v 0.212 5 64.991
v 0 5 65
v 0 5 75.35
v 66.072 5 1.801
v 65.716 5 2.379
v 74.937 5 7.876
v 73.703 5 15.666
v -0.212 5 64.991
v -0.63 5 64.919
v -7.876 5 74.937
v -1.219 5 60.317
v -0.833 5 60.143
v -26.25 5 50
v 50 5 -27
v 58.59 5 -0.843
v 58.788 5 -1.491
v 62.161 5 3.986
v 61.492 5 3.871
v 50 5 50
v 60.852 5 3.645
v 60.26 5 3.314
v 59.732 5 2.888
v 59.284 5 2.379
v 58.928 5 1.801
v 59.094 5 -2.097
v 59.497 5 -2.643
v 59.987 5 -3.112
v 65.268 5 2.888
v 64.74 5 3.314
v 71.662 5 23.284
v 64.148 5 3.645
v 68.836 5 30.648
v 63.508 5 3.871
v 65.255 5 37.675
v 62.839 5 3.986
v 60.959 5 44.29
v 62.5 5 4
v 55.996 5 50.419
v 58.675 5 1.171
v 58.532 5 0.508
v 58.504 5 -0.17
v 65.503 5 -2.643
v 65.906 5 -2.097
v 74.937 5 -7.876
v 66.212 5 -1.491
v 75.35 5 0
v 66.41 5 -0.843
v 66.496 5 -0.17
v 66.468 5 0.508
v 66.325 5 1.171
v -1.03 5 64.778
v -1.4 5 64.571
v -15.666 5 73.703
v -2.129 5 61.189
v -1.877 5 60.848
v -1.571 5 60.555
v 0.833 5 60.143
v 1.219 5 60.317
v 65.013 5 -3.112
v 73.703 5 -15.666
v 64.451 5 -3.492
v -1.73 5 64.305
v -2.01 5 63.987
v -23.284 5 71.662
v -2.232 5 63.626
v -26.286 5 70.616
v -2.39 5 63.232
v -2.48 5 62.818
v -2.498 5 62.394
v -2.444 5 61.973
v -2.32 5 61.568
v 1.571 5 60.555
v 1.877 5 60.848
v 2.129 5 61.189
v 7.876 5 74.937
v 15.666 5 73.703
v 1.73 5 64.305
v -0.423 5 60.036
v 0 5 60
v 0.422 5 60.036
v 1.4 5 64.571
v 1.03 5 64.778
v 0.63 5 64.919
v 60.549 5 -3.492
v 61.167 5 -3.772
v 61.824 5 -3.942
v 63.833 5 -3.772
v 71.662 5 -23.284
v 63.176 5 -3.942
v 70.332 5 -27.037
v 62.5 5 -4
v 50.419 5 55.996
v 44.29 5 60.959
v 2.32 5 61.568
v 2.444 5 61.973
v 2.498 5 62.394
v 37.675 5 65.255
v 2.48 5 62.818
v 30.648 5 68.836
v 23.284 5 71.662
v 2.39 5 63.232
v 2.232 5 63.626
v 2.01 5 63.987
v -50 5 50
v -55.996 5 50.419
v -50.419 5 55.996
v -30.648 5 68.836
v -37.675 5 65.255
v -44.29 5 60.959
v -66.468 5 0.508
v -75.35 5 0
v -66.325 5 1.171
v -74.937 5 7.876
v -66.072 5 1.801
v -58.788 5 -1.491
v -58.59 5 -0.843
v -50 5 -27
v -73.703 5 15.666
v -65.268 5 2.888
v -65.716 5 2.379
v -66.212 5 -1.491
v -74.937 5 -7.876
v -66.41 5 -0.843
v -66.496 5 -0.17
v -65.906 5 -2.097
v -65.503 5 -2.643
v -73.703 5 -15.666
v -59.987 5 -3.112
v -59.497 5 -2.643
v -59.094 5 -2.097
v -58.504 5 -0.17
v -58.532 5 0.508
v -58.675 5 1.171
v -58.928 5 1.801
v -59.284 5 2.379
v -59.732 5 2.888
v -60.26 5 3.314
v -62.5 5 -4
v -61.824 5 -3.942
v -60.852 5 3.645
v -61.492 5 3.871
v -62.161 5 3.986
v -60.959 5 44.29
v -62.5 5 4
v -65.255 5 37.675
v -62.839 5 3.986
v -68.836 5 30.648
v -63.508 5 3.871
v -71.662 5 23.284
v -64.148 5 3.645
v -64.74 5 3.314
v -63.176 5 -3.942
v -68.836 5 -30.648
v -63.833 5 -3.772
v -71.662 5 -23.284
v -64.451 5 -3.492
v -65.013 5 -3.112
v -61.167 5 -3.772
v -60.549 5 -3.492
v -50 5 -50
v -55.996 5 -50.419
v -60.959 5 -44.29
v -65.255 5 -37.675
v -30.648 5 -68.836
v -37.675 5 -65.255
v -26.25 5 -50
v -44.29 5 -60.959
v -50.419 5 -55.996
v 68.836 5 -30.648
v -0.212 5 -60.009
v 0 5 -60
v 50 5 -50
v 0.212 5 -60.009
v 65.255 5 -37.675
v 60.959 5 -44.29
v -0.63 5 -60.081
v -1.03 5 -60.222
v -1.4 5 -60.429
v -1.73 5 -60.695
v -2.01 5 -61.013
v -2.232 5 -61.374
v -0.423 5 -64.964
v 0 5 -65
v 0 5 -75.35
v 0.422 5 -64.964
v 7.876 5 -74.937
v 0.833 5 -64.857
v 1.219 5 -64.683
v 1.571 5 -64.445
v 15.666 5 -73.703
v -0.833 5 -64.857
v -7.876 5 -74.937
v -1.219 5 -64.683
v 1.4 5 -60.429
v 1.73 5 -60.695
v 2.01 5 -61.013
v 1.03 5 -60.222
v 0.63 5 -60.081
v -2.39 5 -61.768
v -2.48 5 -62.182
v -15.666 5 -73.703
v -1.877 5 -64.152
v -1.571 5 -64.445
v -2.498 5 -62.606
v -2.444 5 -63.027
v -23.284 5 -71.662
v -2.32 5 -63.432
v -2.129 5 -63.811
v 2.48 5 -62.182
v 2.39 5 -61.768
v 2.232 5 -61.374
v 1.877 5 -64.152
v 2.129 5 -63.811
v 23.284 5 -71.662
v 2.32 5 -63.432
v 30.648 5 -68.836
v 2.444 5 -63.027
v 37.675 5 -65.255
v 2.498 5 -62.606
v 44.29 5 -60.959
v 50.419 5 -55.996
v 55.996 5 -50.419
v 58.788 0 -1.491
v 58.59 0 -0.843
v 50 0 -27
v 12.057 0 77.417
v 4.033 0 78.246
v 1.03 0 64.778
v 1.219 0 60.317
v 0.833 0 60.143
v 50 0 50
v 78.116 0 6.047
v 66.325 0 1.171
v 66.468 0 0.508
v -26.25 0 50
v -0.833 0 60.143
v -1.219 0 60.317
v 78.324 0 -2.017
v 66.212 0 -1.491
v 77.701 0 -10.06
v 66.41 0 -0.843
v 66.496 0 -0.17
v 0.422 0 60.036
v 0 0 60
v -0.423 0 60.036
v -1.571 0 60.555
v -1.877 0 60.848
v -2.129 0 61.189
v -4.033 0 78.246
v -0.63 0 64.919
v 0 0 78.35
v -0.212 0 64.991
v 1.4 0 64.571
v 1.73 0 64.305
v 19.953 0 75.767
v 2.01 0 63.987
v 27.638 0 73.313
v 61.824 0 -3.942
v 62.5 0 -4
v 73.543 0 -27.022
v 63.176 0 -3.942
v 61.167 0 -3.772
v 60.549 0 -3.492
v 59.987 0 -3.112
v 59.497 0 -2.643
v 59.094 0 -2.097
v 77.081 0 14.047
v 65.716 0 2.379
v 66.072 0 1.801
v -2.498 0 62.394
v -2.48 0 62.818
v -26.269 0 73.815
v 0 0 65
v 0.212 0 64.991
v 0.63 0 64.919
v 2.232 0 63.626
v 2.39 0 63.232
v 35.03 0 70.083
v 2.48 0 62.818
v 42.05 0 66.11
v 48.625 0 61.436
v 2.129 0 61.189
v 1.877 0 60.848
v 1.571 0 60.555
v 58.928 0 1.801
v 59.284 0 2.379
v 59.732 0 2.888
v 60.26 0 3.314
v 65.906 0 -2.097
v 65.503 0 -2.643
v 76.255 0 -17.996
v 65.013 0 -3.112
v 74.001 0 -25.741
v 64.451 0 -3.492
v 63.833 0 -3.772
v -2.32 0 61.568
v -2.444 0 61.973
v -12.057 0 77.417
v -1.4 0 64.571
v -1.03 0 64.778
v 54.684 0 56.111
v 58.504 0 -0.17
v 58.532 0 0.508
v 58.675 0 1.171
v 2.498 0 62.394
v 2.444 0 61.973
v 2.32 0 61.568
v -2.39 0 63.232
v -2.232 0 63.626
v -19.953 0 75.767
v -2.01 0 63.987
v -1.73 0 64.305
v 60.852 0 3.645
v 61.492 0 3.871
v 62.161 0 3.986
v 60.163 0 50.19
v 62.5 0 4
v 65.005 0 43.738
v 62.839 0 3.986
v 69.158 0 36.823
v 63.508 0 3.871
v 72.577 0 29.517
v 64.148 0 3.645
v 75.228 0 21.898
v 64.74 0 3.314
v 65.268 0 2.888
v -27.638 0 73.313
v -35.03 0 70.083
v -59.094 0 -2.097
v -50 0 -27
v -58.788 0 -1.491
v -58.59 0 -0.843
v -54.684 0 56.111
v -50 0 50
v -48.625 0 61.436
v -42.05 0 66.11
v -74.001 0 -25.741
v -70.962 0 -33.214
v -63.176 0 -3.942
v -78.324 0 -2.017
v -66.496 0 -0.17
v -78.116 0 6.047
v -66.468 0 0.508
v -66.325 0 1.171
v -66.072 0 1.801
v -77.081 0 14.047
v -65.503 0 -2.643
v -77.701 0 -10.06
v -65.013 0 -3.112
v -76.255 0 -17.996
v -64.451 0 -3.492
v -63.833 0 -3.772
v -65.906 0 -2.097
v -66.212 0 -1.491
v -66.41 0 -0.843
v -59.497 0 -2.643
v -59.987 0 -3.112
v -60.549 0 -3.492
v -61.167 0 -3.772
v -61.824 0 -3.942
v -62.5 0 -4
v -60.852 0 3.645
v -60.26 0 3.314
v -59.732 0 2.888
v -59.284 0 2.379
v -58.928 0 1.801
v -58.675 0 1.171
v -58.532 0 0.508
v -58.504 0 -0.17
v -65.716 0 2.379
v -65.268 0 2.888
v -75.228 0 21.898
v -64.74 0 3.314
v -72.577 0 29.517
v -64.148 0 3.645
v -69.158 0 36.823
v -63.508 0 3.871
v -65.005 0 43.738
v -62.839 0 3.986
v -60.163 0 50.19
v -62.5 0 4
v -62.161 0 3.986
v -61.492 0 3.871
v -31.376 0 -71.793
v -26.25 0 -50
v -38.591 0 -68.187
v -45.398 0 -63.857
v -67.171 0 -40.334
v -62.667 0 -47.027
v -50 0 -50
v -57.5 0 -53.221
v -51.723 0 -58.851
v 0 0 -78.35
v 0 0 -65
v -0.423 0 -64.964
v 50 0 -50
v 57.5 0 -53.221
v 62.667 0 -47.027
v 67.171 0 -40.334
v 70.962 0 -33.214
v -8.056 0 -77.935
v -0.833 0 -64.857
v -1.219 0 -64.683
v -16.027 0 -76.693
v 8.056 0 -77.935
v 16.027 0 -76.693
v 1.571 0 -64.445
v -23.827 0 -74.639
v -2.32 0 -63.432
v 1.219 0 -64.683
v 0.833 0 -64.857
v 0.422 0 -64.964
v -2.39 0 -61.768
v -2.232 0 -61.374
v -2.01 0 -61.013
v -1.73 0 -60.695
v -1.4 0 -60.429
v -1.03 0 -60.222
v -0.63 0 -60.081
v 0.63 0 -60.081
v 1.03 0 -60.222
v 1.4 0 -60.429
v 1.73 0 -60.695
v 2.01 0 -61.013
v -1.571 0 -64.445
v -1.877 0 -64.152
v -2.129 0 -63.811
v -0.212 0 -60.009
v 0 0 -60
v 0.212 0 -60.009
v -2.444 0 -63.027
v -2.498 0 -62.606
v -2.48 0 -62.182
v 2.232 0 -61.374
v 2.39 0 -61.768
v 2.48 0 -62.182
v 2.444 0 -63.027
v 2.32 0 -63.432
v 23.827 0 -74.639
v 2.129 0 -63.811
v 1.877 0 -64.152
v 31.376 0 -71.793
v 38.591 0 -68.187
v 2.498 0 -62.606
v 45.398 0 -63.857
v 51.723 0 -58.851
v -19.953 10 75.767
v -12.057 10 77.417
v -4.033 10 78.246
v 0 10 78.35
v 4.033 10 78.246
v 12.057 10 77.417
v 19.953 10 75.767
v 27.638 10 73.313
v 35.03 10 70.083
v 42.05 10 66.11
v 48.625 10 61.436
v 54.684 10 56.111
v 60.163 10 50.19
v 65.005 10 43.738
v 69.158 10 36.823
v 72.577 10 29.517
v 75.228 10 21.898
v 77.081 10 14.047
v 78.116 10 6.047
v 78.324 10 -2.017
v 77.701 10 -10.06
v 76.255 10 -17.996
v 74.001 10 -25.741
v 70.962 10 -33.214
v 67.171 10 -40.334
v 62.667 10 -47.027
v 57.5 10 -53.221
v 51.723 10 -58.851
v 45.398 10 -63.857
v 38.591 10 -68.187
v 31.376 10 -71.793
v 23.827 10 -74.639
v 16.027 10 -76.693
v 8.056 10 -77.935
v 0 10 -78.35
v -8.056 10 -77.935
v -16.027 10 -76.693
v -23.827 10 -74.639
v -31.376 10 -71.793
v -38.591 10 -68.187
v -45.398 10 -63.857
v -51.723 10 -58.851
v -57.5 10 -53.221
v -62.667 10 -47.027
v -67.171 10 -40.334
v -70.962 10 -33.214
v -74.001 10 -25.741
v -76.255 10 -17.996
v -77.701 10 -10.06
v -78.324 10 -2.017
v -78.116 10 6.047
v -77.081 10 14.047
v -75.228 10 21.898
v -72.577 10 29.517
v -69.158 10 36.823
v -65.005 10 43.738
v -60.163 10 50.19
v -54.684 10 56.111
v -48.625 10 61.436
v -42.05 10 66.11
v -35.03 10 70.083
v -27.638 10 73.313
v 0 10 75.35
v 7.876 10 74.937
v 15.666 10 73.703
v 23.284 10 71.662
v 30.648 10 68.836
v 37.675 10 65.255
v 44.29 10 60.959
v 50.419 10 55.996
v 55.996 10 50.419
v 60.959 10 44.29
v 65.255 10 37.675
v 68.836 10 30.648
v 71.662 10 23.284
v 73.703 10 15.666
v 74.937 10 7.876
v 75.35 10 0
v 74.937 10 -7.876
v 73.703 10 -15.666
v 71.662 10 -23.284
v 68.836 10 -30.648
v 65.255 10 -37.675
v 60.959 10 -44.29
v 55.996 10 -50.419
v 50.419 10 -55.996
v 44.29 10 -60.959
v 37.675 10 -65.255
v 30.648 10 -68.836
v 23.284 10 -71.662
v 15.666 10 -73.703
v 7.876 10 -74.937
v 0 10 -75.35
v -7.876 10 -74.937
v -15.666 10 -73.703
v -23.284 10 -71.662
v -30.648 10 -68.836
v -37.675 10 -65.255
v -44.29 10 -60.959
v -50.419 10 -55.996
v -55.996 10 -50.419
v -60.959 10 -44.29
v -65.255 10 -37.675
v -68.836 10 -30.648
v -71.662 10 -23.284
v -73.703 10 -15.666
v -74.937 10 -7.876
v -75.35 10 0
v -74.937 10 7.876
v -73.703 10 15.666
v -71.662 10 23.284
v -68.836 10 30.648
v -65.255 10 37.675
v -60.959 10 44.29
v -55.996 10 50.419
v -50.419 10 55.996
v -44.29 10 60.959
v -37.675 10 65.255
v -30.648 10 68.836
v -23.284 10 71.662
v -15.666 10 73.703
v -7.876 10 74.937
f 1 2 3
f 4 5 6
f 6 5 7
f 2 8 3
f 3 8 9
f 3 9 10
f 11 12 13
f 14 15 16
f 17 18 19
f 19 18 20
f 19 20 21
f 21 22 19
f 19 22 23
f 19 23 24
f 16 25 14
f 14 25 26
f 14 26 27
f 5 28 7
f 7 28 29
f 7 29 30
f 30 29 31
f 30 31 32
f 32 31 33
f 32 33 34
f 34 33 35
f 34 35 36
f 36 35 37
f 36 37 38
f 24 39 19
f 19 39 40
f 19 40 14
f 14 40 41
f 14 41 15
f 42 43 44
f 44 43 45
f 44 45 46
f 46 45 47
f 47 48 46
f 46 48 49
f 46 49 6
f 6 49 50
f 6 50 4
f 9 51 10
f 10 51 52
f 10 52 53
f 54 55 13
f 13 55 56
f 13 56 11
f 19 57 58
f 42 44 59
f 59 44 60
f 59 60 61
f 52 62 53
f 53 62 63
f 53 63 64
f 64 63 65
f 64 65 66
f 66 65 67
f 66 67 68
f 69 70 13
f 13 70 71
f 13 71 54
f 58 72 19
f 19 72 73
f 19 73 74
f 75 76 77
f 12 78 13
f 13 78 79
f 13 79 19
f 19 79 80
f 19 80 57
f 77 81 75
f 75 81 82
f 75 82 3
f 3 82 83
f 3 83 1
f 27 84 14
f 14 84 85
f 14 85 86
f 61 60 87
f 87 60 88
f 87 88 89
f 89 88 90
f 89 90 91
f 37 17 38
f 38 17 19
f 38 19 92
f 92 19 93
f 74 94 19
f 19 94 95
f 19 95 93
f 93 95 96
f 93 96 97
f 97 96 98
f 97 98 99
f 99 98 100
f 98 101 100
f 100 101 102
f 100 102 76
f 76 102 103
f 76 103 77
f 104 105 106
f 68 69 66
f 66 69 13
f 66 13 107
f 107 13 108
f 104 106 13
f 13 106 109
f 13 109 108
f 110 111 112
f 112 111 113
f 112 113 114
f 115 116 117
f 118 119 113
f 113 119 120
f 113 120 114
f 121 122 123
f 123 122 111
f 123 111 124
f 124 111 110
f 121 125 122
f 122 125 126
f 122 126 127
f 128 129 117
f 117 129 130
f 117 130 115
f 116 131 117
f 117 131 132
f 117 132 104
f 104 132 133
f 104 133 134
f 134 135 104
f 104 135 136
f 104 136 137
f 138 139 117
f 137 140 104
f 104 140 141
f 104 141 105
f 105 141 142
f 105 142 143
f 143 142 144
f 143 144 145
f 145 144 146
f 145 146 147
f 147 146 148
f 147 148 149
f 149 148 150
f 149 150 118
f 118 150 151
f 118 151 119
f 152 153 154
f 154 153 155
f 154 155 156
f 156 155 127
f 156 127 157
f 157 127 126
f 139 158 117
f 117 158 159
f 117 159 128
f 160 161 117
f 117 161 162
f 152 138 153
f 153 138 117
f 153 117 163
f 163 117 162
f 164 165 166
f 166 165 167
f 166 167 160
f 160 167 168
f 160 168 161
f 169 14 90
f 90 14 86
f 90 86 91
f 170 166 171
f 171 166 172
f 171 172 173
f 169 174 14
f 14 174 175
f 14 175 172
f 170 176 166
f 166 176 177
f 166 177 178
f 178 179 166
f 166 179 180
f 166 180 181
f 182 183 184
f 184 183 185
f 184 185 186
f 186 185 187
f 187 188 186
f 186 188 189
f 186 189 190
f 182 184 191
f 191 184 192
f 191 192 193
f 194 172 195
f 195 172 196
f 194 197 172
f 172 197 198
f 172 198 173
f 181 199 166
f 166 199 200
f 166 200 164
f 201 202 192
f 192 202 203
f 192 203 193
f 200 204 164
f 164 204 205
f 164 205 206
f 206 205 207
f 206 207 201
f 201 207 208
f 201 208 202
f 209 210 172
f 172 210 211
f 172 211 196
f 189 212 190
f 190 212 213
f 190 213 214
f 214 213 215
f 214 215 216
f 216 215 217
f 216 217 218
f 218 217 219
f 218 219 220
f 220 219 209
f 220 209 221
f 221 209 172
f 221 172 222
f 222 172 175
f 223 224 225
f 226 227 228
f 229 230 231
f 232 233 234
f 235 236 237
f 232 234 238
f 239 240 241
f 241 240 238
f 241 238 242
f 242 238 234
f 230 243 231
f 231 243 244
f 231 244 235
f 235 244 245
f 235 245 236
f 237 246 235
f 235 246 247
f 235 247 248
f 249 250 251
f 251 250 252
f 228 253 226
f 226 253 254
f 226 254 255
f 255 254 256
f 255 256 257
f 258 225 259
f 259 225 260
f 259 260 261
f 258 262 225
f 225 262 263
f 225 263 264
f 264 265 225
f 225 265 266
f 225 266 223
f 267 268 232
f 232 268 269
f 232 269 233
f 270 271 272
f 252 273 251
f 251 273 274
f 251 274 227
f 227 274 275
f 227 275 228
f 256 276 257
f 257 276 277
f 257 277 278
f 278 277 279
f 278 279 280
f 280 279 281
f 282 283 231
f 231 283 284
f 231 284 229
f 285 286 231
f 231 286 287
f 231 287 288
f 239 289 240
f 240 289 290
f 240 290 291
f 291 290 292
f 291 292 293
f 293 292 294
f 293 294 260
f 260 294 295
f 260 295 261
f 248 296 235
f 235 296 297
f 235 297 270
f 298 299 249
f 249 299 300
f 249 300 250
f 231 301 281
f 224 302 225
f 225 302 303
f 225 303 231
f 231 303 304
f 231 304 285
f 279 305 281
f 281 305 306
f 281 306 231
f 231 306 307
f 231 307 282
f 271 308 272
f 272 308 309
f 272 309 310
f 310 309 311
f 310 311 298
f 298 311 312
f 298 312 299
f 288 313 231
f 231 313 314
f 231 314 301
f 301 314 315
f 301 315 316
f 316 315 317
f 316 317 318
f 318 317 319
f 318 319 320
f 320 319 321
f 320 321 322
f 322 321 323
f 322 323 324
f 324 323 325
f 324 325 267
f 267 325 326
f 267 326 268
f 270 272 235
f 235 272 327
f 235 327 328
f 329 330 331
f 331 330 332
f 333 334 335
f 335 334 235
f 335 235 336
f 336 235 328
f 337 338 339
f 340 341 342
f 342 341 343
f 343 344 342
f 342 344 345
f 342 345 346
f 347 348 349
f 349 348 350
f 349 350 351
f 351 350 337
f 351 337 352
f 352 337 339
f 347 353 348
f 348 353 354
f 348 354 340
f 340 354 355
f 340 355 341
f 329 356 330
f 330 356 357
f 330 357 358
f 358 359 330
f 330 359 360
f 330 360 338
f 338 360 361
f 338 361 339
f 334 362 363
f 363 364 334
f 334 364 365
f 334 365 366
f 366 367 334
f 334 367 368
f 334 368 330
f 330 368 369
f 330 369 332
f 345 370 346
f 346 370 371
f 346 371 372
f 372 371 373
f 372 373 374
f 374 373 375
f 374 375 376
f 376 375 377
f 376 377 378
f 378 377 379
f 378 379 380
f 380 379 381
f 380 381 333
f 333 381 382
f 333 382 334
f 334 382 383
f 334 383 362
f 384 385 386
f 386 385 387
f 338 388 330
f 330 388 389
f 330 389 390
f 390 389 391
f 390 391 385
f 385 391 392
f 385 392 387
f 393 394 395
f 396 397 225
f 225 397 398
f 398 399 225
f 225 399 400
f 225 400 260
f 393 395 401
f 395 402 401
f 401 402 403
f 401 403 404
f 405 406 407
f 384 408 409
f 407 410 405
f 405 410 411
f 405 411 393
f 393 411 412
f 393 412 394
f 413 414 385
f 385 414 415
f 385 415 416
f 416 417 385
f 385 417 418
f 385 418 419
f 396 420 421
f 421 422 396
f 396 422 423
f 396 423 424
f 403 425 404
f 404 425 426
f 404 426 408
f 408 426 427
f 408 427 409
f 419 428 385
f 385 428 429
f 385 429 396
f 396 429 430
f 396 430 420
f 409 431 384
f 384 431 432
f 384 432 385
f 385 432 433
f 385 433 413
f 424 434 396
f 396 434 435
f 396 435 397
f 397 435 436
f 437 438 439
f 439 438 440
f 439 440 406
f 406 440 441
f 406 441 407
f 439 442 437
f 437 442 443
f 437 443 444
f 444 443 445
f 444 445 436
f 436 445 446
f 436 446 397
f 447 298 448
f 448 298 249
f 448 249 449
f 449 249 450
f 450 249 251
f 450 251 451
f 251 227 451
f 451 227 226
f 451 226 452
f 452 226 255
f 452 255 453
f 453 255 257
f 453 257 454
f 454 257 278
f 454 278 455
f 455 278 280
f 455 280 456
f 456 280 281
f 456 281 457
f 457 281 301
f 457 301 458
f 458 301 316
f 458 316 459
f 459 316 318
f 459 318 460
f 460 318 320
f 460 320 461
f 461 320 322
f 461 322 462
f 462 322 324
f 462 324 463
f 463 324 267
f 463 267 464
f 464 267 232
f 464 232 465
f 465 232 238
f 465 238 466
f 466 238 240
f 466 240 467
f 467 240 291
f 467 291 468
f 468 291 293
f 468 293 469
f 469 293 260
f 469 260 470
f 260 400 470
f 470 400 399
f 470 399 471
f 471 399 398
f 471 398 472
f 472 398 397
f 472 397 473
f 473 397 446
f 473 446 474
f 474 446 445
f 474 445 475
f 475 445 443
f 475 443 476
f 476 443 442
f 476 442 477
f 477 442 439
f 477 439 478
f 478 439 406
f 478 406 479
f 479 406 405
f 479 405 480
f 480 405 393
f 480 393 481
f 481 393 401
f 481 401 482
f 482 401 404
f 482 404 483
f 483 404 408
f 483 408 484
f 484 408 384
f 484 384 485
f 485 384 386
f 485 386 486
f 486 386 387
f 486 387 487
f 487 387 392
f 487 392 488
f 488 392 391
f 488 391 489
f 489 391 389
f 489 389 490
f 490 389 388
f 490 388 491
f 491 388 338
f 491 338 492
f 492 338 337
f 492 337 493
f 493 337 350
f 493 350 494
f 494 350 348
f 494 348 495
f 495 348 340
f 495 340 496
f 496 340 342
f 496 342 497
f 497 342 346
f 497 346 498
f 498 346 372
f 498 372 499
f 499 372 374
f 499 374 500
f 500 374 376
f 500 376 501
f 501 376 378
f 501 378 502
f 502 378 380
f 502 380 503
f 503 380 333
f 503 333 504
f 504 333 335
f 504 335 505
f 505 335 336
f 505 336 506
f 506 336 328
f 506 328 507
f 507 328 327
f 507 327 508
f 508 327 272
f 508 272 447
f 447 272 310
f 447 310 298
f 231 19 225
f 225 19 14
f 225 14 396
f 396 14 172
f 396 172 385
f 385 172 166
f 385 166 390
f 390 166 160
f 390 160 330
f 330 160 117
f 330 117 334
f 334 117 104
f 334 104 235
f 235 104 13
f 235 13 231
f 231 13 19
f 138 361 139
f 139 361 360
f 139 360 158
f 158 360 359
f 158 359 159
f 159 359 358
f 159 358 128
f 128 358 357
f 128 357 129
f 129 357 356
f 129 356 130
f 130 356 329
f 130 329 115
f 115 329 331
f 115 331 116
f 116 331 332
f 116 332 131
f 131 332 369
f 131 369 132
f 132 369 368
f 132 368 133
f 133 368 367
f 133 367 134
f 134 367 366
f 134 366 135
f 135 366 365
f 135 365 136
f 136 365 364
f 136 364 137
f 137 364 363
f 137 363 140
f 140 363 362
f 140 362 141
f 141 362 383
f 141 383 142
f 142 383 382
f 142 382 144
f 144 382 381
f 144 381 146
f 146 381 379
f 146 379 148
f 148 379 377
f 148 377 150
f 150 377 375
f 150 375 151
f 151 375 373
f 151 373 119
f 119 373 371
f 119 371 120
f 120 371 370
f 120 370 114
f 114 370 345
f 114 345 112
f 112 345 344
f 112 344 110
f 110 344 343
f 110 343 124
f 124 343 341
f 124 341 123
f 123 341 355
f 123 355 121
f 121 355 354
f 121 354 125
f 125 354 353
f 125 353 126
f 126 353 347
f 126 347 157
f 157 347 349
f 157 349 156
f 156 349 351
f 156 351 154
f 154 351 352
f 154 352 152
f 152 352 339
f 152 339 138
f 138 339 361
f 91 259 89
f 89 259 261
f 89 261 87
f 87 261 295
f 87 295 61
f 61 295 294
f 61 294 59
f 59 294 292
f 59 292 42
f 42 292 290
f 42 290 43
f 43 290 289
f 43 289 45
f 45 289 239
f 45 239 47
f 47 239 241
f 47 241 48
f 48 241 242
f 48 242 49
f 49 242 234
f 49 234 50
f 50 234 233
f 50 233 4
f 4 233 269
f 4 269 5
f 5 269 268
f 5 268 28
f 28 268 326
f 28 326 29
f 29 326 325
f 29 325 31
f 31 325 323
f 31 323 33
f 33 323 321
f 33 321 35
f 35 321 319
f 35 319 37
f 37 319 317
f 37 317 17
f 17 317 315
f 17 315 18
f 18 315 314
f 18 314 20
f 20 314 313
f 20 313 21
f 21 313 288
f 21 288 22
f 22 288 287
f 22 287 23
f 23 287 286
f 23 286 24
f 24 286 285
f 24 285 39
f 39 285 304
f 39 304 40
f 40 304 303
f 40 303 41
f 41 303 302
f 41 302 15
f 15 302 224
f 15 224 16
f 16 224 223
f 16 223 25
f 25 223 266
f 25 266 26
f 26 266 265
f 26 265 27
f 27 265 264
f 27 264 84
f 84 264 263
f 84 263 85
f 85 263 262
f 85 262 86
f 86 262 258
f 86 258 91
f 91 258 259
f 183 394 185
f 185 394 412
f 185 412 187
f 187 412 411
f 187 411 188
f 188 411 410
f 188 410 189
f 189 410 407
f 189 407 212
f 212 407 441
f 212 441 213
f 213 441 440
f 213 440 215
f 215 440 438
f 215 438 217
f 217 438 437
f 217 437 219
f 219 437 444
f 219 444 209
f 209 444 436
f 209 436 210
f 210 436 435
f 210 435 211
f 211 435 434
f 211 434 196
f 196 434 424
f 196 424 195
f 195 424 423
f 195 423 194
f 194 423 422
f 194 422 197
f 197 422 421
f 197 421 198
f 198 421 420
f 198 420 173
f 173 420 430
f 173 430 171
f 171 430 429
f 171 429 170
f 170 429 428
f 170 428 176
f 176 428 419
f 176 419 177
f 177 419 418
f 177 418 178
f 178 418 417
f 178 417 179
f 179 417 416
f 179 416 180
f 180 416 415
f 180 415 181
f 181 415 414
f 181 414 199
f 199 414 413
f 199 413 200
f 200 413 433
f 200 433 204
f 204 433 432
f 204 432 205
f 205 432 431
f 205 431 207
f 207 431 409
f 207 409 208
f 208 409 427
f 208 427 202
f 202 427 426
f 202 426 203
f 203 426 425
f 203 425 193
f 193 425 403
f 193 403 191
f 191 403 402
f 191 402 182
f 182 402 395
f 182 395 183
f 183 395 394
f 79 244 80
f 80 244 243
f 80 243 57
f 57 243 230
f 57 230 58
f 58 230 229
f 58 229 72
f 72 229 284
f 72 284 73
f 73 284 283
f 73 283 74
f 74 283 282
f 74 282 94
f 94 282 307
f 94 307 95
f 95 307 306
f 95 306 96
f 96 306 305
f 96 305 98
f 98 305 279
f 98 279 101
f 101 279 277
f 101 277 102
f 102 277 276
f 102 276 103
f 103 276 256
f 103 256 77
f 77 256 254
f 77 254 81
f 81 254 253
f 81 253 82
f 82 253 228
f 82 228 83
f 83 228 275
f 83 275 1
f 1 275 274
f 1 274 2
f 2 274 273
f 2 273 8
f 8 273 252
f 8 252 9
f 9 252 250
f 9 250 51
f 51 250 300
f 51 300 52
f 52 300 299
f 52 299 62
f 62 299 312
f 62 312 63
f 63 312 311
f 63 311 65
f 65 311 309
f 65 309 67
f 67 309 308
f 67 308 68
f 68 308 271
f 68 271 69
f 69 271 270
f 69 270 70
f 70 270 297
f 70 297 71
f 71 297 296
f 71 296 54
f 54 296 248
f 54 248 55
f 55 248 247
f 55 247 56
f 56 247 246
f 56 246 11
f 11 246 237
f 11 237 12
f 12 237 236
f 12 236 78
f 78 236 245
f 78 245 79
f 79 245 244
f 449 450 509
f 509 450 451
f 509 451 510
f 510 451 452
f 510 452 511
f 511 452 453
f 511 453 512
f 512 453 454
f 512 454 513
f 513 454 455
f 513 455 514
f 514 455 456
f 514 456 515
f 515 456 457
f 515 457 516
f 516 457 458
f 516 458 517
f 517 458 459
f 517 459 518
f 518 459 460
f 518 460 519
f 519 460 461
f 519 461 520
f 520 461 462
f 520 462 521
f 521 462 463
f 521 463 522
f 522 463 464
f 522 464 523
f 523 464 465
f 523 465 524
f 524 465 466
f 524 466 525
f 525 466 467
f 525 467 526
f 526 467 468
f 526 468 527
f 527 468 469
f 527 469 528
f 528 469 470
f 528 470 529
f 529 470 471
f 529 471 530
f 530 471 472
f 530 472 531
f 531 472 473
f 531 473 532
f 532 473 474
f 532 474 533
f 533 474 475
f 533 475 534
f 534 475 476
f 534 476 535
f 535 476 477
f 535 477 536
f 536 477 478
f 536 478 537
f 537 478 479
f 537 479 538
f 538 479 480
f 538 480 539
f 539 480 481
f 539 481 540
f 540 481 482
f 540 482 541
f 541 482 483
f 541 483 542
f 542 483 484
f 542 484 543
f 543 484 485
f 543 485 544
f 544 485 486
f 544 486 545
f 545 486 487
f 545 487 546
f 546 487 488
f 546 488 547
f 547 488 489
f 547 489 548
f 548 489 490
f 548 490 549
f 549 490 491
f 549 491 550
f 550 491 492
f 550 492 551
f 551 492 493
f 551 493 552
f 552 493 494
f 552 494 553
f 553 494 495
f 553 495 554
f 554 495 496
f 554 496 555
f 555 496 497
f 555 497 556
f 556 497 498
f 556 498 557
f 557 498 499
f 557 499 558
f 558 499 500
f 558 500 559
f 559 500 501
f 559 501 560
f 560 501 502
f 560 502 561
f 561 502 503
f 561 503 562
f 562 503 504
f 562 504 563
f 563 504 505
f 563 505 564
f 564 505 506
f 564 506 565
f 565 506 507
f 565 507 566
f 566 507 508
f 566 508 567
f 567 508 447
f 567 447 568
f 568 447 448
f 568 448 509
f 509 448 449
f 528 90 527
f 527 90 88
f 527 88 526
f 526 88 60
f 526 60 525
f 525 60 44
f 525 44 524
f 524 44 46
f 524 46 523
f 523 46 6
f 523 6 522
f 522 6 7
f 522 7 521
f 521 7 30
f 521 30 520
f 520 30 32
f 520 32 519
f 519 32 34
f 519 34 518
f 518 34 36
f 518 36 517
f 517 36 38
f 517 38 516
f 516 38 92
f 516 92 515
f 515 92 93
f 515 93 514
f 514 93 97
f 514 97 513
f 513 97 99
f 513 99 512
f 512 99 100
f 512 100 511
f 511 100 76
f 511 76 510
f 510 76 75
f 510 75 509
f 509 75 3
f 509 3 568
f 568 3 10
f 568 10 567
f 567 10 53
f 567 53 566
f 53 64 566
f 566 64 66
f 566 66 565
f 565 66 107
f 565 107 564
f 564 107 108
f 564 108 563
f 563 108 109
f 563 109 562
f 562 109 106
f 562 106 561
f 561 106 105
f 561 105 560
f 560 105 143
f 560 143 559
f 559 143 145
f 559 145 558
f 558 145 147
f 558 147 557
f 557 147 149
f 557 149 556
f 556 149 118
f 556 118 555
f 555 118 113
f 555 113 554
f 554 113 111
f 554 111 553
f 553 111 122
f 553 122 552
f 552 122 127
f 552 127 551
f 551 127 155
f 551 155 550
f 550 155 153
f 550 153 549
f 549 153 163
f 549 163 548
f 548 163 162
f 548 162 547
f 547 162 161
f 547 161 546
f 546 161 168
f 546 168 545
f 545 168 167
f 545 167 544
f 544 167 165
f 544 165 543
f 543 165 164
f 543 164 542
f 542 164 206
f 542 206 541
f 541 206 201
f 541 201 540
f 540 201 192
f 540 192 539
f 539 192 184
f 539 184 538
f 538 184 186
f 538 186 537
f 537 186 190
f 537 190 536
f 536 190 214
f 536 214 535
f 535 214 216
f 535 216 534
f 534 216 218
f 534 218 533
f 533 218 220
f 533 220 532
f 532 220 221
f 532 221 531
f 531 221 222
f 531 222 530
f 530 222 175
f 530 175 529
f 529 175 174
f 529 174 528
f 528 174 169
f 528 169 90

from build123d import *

# Parameters (mm, degrees)
SKETCH1_R           = 78.35
SKETCH1_R_2         = 4
SKETCH1_R_3         = 2.5
SKETCH1_W           = 100
SKETCH1_H           = 100
BOSS_EXTRUDE1_DEPTH = 5
SKETCH2_R           = 78.35
SKETCH2_R_2         = 75.35
BOSS_EXTRUDE2_DEPTH = 5


with BuildPart() as part:
    # Sketch1 → Boss-Extrude1 (new body)
    with BuildSketch(Plane(origin=(0, 0, 0), x_dir=(1, 0, 0), z_dir=(0, 1, 0))):
        with Locations(Location((0, 0, 0), (0, 0, 270))):
            Circle(SKETCH1_R)
        with Locations(Location((-62.5, 0, 0), (0, 0, 270))):
            Circle(SKETCH1_R_2, mode=Mode.SUBTRACT)
        with Locations(Location((62.5, 0, 0), (0, 0, 270))):
            Circle(SKETCH1_R_2, mode=Mode.SUBTRACT)
        with Locations(Location((0, 62.5, 0), (0, 0, 270))):
            Circle(SKETCH1_R_3, mode=Mode.SUBTRACT)
        with Locations(Location((0, -62.5, 0), (0, 0, 270))):
            Circle(SKETCH1_R_3, mode=Mode.SUBTRACT)
        Rectangle(SKETCH1_W, SKETCH1_H, mode=Mode.SUBTRACT)
    extrude(amount=BOSS_EXTRUDE1_DEPTH)

    # Sketch2 → Boss-Extrude2 (add)
    with BuildSketch(Plane(origin=(0, 5, 0), x_dir=(1, 0, 0), z_dir=(0, 1, 0))):
        with Locations(Location((0, 0, 0), (0, 0, 270))):
            Circle(SKETCH2_R)
        with Locations(Location((0, 0, 0), (0, 0, 270))):
            Circle(SKETCH2_R_2, mode=Mode.SUBTRACT)
    extrude(amount=BOSS_EXTRUDE2_DEPTH)


solid = part.part
